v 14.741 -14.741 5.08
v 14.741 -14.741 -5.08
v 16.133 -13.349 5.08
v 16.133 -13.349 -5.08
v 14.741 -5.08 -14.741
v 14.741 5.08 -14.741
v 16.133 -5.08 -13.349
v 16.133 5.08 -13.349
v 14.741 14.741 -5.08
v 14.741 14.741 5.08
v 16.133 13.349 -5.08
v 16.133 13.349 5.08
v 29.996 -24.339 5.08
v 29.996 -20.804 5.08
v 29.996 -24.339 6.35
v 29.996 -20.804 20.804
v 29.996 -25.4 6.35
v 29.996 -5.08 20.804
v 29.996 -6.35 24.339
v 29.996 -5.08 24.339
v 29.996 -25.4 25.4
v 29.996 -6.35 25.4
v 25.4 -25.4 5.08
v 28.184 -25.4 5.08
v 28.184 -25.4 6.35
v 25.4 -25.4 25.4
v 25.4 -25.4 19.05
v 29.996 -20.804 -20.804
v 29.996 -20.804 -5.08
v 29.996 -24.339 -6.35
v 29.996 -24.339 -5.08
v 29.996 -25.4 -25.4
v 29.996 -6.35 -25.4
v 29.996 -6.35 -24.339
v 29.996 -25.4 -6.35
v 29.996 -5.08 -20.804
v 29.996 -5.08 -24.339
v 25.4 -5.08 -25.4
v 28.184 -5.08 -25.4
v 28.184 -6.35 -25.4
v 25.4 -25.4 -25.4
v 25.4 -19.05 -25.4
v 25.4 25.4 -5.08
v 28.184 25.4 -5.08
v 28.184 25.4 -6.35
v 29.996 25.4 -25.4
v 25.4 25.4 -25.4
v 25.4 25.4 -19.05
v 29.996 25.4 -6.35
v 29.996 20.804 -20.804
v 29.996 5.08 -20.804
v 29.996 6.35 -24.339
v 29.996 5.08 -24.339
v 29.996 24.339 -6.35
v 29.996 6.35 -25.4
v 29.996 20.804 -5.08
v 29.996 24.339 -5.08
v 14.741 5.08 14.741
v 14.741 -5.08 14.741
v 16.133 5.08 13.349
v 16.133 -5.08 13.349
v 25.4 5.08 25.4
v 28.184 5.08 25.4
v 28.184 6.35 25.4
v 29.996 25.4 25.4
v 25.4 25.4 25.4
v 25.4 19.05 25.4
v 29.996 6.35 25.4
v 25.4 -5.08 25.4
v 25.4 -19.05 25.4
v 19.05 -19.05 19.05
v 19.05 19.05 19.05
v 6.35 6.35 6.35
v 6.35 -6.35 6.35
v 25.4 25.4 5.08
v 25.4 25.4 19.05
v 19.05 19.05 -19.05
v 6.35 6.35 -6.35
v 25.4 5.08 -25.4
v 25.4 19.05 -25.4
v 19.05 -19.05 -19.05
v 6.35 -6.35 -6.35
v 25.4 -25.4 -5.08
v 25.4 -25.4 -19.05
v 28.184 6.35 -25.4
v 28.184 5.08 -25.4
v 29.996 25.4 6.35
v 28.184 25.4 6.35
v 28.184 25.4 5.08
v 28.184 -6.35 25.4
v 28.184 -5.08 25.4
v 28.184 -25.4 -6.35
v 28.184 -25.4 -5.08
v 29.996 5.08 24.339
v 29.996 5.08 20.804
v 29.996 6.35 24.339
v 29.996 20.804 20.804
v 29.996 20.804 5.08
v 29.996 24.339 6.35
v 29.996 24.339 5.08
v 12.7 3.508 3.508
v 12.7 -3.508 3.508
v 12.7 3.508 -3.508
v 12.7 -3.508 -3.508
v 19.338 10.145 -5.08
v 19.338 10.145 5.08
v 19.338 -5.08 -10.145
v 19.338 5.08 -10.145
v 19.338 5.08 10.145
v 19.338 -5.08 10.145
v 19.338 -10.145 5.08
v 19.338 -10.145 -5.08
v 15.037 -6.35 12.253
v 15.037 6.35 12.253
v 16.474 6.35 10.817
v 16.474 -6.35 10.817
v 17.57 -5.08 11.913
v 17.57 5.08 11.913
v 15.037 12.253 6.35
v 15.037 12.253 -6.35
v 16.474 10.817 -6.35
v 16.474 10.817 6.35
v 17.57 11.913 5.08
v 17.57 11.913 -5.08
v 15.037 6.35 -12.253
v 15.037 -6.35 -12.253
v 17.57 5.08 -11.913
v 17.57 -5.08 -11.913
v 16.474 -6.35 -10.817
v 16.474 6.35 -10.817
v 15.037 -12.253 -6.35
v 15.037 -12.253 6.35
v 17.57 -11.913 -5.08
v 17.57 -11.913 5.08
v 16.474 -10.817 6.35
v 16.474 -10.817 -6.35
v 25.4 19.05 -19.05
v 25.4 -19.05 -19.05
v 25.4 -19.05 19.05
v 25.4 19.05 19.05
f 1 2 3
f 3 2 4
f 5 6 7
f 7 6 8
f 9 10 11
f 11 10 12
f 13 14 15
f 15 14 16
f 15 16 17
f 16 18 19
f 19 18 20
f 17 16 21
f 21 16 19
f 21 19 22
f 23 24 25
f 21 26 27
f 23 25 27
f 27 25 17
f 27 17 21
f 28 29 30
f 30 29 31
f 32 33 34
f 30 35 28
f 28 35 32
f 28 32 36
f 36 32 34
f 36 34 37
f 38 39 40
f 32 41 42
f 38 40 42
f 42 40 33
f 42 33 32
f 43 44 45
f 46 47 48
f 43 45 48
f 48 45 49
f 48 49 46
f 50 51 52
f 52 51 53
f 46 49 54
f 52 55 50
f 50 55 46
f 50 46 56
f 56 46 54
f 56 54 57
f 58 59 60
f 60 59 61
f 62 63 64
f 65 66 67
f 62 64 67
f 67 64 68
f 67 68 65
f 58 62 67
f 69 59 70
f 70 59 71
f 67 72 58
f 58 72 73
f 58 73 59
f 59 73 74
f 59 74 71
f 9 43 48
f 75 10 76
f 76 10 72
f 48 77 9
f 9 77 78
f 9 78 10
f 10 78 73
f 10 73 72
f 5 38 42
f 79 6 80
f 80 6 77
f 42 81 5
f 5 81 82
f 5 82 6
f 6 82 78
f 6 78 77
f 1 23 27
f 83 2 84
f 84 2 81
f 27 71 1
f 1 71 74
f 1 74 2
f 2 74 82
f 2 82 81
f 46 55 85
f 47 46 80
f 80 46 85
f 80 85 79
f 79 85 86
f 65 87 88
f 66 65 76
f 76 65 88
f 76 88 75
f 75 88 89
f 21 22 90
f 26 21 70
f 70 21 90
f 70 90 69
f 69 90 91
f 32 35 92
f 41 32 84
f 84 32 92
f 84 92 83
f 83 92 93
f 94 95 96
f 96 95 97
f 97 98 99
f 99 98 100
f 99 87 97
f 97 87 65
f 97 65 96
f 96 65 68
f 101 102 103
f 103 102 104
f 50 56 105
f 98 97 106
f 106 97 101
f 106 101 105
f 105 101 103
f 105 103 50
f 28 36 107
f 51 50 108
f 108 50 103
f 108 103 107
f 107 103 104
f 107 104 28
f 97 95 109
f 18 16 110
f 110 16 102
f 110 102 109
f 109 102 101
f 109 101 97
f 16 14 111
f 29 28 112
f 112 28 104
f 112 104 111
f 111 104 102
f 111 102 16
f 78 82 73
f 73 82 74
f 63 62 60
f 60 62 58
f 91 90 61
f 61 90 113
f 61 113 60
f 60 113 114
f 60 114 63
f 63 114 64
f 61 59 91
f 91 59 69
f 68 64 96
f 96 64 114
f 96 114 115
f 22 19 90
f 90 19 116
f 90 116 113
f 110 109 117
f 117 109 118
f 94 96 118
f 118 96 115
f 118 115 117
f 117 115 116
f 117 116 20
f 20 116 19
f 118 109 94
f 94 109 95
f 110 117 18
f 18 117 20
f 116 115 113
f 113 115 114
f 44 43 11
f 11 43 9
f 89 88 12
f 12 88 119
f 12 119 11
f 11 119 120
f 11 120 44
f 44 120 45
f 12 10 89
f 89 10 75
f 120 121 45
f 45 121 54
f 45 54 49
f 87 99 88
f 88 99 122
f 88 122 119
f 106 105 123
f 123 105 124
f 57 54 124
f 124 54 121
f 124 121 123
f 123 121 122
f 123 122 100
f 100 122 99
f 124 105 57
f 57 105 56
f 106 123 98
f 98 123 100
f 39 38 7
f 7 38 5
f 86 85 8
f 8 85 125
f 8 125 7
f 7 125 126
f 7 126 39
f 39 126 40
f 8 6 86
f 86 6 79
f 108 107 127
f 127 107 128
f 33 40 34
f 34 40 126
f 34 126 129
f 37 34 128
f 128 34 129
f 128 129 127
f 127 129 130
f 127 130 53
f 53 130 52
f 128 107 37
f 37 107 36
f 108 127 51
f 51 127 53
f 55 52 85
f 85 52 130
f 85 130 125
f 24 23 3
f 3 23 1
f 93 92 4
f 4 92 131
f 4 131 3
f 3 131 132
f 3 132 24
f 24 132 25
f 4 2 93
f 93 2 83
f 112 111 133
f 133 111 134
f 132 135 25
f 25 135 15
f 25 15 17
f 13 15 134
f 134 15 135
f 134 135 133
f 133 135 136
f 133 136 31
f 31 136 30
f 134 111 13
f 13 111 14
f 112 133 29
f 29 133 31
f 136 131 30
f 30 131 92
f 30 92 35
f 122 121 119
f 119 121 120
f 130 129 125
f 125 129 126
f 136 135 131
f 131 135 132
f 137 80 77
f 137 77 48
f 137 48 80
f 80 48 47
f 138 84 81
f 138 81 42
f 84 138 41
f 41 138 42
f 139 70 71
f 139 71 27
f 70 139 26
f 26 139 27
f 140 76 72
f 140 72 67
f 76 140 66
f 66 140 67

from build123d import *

# Parameters (mm, degrees)
SKETCH3_W           = 50.8
SKETCH3_H           = 50.8
BOSS_EXTRUDE1_DEPTH = 29.996194
CUT_EXTRUDE1_DEPTH  = 65.230613146
CIRPATTERN1_COUNT   = 4
SKETCH8_W           = 12.7
SKETCH8_H           = 12.7
CUT_EXTRUDE2_DEPTH  = 44.00537756
CUT_EXTRUDE3_START  = -20.21
CUT_EXTRUDE3_DEPTH  = 84.434853552
SKETCH10_W          = 2.032
SKETCH10_H          = 12.7
CUT_EXTRUDE4_DEPTH  = 21.76
CIRPATTERN2_COUNT   = 4
SKETCH11_W          = 6.35
SKETCH11_H          = 6.35
CUT_EXTRUDE5_DEPTH  = 41.659838908


with BuildPart() as part:
    # Sketch3 → Boss-Extrude1 (new body)
    with BuildSketch(Plane(origin=(0, 0, 0), x_dir=(0, 0, -1), z_dir=(1, 0, 0))):
        Rectangle(SKETCH3_W, SKETCH3_H)
    extrude(amount=BOSS_EXTRUDE1_DEPTH)

    # Sketch4 → Cut-Loft1 section 0
    with BuildSketch(Plane(origin=(12.7, 0, 0), x_dir=(0, 0, -1), z_dir=(1, 0, 0))):
        with BuildLine():
            Line((-3.507611845, 3.507611845), (3.507611845, 3.507611845))
            Line((3.507611845, 3.507611845), (3.507611845, -3.507611845))
            Line((3.507611845, -3.507611845), (-3.507611845, -3.507611845))
            Line((-3.507611845, -3.507611845), (-3.507611845, 3.507611845))
        make_face()
    # Sketch5 → Cut-Loft1 section 1
    with BuildSketch(Plane(origin=(29.996194078, 0, 0), x_dir=(0, 0, -1), z_dir=(1, 0, 0))):
        with BuildLine():
            Line((-20.803805922, 20.803805922), (20.803805922, 20.803805922))
            Line((20.803805922, 20.803805922), (20.803805922, -20.803805922))
            Line((20.803805922, -20.803805922), (-20.803805922, -20.803805922))
            Line((-20.803805922, -20.803805922), (-20.803805922, 20.803805922))
        make_face()
    loft(mode=Mode.SUBTRACT)

    # Sketch6 → Cut-Extrude1 (cut, through all)
    with BuildSketch(Plane(origin=(0, 25.4, 0), x_dir=(1, 0, 0), z_dir=(0, 1, 0))):
        Polygon((25.4, -25.4), (0, 0), (0, -25.4), align=None)
    cut_extrude1 = extrude(amount=-CUT_EXTRUDE1_DEPTH, mode=Mode.SUBTRACT)

    # CirPattern1: Cut-Extrude1 ×4 about axis
    cirpattern1_axis = Axis((0, 0, 0), (1, 0, 0))
    for i in range(1, CIRPATTERN1_COUNT):
        add(cut_extrude1.rotate(cirpattern1_axis, i * 360 / CIRPATTERN1_COUNT), mode=Mode.SUBTRACT)

    # Sketch8 → Cut-Extrude2 (cut, through all)
    with BuildSketch(Plane(origin=(6.35, 0, 0), x_dir=(0, 0, -1), z_dir=(1, 0, 0))):
        Rectangle(SKETCH8_W, SKETCH8_H)
    extrude(amount=-CUT_EXTRUDE2_DEPTH, mode=Mode.SUBTRACT)

    # Sketch9 → Cut-Extrude3 (cut)
    with BuildSketch(Plane(origin=(31.142405514, 0, 26.921685137), x_dir=(0.7071067811865474, 0, -0.7071067811865477), z_dir=(0.7071067811865477, 0, 0.7071067811865474)).offset(CUT_EXTRUDE3_START)):
        Polygon((-1.016, 5.08), (-1.016, 6.35), (1.016, 6.35), (1.016, 5.08), (3.5155, 5.08), (3.5155, -5.08), (1.016, -5.08), (1.016, -6.35), (-1.016, -6.35), (-1.016, -5.08), (-3.5155, -5.08), (-3.5155, 5.08), align=None)
    cut_extrude3 = extrude(amount=CUT_EXTRUDE3_DEPTH, mode=Mode.SUBTRACT)

    # Sketch10 → Cut-Extrude4 (cut)
    with BuildSketch(Plane(origin=(31.142405514, 0, 26.921685137), x_dir=(0.7071067811865474, 0, -0.7071067811865477), z_dir=(0.7071067811865477, 0, 0.7071067811865474))):
        Rectangle(SKETCH10_W, SKETCH10_H)
    cut_extrude4 = extrude(amount=-CUT_EXTRUDE4_DEPTH, mode=Mode.SUBTRACT)

    # CirPattern2: Cut-Extrude3, Cut-Extrude4 ×4 about axis
    cirpattern2_axis = Axis((0, 0, 0), (1, 0, 0))
    add([cut_extrude3.rotate(cirpattern2_axis, i * 360 / CIRPATTERN2_COUNT) for i in range(1, CIRPATTERN2_COUNT)], mode=Mode.SUBTRACT)
    add([cut_extrude4.rotate(cirpattern2_axis, i * 360 / CIRPATTERN2_COUNT) for i in range(1, CIRPATTERN2_COUNT)], mode=Mode.SUBTRACT)

    # Sketch11 → Cut-Extrude5 (cut, through all)
    with BuildSketch(Plane(origin=(25.4, 0, 0), x_dir=(0, 0, -1), z_dir=(1, 0, 0))):
        with Locations((22.225, 22.225)):
            Rectangle(SKETCH11_W, SKETCH11_H)
        with Locations((22.225, -22.225)):
            Rectangle(SKETCH11_W, SKETCH11_H)
        with Locations((-22.225, -22.225)):
            Rectangle(SKETCH11_W, SKETCH11_H)
        with Locations((-22.225, 22.225)):
            Rectangle(SKETCH11_W, SKETCH11_H)
    extrude(amount=-CUT_EXTRUDE5_DEPTH, mode=Mode.SUBTRACT)


solid = part.part
